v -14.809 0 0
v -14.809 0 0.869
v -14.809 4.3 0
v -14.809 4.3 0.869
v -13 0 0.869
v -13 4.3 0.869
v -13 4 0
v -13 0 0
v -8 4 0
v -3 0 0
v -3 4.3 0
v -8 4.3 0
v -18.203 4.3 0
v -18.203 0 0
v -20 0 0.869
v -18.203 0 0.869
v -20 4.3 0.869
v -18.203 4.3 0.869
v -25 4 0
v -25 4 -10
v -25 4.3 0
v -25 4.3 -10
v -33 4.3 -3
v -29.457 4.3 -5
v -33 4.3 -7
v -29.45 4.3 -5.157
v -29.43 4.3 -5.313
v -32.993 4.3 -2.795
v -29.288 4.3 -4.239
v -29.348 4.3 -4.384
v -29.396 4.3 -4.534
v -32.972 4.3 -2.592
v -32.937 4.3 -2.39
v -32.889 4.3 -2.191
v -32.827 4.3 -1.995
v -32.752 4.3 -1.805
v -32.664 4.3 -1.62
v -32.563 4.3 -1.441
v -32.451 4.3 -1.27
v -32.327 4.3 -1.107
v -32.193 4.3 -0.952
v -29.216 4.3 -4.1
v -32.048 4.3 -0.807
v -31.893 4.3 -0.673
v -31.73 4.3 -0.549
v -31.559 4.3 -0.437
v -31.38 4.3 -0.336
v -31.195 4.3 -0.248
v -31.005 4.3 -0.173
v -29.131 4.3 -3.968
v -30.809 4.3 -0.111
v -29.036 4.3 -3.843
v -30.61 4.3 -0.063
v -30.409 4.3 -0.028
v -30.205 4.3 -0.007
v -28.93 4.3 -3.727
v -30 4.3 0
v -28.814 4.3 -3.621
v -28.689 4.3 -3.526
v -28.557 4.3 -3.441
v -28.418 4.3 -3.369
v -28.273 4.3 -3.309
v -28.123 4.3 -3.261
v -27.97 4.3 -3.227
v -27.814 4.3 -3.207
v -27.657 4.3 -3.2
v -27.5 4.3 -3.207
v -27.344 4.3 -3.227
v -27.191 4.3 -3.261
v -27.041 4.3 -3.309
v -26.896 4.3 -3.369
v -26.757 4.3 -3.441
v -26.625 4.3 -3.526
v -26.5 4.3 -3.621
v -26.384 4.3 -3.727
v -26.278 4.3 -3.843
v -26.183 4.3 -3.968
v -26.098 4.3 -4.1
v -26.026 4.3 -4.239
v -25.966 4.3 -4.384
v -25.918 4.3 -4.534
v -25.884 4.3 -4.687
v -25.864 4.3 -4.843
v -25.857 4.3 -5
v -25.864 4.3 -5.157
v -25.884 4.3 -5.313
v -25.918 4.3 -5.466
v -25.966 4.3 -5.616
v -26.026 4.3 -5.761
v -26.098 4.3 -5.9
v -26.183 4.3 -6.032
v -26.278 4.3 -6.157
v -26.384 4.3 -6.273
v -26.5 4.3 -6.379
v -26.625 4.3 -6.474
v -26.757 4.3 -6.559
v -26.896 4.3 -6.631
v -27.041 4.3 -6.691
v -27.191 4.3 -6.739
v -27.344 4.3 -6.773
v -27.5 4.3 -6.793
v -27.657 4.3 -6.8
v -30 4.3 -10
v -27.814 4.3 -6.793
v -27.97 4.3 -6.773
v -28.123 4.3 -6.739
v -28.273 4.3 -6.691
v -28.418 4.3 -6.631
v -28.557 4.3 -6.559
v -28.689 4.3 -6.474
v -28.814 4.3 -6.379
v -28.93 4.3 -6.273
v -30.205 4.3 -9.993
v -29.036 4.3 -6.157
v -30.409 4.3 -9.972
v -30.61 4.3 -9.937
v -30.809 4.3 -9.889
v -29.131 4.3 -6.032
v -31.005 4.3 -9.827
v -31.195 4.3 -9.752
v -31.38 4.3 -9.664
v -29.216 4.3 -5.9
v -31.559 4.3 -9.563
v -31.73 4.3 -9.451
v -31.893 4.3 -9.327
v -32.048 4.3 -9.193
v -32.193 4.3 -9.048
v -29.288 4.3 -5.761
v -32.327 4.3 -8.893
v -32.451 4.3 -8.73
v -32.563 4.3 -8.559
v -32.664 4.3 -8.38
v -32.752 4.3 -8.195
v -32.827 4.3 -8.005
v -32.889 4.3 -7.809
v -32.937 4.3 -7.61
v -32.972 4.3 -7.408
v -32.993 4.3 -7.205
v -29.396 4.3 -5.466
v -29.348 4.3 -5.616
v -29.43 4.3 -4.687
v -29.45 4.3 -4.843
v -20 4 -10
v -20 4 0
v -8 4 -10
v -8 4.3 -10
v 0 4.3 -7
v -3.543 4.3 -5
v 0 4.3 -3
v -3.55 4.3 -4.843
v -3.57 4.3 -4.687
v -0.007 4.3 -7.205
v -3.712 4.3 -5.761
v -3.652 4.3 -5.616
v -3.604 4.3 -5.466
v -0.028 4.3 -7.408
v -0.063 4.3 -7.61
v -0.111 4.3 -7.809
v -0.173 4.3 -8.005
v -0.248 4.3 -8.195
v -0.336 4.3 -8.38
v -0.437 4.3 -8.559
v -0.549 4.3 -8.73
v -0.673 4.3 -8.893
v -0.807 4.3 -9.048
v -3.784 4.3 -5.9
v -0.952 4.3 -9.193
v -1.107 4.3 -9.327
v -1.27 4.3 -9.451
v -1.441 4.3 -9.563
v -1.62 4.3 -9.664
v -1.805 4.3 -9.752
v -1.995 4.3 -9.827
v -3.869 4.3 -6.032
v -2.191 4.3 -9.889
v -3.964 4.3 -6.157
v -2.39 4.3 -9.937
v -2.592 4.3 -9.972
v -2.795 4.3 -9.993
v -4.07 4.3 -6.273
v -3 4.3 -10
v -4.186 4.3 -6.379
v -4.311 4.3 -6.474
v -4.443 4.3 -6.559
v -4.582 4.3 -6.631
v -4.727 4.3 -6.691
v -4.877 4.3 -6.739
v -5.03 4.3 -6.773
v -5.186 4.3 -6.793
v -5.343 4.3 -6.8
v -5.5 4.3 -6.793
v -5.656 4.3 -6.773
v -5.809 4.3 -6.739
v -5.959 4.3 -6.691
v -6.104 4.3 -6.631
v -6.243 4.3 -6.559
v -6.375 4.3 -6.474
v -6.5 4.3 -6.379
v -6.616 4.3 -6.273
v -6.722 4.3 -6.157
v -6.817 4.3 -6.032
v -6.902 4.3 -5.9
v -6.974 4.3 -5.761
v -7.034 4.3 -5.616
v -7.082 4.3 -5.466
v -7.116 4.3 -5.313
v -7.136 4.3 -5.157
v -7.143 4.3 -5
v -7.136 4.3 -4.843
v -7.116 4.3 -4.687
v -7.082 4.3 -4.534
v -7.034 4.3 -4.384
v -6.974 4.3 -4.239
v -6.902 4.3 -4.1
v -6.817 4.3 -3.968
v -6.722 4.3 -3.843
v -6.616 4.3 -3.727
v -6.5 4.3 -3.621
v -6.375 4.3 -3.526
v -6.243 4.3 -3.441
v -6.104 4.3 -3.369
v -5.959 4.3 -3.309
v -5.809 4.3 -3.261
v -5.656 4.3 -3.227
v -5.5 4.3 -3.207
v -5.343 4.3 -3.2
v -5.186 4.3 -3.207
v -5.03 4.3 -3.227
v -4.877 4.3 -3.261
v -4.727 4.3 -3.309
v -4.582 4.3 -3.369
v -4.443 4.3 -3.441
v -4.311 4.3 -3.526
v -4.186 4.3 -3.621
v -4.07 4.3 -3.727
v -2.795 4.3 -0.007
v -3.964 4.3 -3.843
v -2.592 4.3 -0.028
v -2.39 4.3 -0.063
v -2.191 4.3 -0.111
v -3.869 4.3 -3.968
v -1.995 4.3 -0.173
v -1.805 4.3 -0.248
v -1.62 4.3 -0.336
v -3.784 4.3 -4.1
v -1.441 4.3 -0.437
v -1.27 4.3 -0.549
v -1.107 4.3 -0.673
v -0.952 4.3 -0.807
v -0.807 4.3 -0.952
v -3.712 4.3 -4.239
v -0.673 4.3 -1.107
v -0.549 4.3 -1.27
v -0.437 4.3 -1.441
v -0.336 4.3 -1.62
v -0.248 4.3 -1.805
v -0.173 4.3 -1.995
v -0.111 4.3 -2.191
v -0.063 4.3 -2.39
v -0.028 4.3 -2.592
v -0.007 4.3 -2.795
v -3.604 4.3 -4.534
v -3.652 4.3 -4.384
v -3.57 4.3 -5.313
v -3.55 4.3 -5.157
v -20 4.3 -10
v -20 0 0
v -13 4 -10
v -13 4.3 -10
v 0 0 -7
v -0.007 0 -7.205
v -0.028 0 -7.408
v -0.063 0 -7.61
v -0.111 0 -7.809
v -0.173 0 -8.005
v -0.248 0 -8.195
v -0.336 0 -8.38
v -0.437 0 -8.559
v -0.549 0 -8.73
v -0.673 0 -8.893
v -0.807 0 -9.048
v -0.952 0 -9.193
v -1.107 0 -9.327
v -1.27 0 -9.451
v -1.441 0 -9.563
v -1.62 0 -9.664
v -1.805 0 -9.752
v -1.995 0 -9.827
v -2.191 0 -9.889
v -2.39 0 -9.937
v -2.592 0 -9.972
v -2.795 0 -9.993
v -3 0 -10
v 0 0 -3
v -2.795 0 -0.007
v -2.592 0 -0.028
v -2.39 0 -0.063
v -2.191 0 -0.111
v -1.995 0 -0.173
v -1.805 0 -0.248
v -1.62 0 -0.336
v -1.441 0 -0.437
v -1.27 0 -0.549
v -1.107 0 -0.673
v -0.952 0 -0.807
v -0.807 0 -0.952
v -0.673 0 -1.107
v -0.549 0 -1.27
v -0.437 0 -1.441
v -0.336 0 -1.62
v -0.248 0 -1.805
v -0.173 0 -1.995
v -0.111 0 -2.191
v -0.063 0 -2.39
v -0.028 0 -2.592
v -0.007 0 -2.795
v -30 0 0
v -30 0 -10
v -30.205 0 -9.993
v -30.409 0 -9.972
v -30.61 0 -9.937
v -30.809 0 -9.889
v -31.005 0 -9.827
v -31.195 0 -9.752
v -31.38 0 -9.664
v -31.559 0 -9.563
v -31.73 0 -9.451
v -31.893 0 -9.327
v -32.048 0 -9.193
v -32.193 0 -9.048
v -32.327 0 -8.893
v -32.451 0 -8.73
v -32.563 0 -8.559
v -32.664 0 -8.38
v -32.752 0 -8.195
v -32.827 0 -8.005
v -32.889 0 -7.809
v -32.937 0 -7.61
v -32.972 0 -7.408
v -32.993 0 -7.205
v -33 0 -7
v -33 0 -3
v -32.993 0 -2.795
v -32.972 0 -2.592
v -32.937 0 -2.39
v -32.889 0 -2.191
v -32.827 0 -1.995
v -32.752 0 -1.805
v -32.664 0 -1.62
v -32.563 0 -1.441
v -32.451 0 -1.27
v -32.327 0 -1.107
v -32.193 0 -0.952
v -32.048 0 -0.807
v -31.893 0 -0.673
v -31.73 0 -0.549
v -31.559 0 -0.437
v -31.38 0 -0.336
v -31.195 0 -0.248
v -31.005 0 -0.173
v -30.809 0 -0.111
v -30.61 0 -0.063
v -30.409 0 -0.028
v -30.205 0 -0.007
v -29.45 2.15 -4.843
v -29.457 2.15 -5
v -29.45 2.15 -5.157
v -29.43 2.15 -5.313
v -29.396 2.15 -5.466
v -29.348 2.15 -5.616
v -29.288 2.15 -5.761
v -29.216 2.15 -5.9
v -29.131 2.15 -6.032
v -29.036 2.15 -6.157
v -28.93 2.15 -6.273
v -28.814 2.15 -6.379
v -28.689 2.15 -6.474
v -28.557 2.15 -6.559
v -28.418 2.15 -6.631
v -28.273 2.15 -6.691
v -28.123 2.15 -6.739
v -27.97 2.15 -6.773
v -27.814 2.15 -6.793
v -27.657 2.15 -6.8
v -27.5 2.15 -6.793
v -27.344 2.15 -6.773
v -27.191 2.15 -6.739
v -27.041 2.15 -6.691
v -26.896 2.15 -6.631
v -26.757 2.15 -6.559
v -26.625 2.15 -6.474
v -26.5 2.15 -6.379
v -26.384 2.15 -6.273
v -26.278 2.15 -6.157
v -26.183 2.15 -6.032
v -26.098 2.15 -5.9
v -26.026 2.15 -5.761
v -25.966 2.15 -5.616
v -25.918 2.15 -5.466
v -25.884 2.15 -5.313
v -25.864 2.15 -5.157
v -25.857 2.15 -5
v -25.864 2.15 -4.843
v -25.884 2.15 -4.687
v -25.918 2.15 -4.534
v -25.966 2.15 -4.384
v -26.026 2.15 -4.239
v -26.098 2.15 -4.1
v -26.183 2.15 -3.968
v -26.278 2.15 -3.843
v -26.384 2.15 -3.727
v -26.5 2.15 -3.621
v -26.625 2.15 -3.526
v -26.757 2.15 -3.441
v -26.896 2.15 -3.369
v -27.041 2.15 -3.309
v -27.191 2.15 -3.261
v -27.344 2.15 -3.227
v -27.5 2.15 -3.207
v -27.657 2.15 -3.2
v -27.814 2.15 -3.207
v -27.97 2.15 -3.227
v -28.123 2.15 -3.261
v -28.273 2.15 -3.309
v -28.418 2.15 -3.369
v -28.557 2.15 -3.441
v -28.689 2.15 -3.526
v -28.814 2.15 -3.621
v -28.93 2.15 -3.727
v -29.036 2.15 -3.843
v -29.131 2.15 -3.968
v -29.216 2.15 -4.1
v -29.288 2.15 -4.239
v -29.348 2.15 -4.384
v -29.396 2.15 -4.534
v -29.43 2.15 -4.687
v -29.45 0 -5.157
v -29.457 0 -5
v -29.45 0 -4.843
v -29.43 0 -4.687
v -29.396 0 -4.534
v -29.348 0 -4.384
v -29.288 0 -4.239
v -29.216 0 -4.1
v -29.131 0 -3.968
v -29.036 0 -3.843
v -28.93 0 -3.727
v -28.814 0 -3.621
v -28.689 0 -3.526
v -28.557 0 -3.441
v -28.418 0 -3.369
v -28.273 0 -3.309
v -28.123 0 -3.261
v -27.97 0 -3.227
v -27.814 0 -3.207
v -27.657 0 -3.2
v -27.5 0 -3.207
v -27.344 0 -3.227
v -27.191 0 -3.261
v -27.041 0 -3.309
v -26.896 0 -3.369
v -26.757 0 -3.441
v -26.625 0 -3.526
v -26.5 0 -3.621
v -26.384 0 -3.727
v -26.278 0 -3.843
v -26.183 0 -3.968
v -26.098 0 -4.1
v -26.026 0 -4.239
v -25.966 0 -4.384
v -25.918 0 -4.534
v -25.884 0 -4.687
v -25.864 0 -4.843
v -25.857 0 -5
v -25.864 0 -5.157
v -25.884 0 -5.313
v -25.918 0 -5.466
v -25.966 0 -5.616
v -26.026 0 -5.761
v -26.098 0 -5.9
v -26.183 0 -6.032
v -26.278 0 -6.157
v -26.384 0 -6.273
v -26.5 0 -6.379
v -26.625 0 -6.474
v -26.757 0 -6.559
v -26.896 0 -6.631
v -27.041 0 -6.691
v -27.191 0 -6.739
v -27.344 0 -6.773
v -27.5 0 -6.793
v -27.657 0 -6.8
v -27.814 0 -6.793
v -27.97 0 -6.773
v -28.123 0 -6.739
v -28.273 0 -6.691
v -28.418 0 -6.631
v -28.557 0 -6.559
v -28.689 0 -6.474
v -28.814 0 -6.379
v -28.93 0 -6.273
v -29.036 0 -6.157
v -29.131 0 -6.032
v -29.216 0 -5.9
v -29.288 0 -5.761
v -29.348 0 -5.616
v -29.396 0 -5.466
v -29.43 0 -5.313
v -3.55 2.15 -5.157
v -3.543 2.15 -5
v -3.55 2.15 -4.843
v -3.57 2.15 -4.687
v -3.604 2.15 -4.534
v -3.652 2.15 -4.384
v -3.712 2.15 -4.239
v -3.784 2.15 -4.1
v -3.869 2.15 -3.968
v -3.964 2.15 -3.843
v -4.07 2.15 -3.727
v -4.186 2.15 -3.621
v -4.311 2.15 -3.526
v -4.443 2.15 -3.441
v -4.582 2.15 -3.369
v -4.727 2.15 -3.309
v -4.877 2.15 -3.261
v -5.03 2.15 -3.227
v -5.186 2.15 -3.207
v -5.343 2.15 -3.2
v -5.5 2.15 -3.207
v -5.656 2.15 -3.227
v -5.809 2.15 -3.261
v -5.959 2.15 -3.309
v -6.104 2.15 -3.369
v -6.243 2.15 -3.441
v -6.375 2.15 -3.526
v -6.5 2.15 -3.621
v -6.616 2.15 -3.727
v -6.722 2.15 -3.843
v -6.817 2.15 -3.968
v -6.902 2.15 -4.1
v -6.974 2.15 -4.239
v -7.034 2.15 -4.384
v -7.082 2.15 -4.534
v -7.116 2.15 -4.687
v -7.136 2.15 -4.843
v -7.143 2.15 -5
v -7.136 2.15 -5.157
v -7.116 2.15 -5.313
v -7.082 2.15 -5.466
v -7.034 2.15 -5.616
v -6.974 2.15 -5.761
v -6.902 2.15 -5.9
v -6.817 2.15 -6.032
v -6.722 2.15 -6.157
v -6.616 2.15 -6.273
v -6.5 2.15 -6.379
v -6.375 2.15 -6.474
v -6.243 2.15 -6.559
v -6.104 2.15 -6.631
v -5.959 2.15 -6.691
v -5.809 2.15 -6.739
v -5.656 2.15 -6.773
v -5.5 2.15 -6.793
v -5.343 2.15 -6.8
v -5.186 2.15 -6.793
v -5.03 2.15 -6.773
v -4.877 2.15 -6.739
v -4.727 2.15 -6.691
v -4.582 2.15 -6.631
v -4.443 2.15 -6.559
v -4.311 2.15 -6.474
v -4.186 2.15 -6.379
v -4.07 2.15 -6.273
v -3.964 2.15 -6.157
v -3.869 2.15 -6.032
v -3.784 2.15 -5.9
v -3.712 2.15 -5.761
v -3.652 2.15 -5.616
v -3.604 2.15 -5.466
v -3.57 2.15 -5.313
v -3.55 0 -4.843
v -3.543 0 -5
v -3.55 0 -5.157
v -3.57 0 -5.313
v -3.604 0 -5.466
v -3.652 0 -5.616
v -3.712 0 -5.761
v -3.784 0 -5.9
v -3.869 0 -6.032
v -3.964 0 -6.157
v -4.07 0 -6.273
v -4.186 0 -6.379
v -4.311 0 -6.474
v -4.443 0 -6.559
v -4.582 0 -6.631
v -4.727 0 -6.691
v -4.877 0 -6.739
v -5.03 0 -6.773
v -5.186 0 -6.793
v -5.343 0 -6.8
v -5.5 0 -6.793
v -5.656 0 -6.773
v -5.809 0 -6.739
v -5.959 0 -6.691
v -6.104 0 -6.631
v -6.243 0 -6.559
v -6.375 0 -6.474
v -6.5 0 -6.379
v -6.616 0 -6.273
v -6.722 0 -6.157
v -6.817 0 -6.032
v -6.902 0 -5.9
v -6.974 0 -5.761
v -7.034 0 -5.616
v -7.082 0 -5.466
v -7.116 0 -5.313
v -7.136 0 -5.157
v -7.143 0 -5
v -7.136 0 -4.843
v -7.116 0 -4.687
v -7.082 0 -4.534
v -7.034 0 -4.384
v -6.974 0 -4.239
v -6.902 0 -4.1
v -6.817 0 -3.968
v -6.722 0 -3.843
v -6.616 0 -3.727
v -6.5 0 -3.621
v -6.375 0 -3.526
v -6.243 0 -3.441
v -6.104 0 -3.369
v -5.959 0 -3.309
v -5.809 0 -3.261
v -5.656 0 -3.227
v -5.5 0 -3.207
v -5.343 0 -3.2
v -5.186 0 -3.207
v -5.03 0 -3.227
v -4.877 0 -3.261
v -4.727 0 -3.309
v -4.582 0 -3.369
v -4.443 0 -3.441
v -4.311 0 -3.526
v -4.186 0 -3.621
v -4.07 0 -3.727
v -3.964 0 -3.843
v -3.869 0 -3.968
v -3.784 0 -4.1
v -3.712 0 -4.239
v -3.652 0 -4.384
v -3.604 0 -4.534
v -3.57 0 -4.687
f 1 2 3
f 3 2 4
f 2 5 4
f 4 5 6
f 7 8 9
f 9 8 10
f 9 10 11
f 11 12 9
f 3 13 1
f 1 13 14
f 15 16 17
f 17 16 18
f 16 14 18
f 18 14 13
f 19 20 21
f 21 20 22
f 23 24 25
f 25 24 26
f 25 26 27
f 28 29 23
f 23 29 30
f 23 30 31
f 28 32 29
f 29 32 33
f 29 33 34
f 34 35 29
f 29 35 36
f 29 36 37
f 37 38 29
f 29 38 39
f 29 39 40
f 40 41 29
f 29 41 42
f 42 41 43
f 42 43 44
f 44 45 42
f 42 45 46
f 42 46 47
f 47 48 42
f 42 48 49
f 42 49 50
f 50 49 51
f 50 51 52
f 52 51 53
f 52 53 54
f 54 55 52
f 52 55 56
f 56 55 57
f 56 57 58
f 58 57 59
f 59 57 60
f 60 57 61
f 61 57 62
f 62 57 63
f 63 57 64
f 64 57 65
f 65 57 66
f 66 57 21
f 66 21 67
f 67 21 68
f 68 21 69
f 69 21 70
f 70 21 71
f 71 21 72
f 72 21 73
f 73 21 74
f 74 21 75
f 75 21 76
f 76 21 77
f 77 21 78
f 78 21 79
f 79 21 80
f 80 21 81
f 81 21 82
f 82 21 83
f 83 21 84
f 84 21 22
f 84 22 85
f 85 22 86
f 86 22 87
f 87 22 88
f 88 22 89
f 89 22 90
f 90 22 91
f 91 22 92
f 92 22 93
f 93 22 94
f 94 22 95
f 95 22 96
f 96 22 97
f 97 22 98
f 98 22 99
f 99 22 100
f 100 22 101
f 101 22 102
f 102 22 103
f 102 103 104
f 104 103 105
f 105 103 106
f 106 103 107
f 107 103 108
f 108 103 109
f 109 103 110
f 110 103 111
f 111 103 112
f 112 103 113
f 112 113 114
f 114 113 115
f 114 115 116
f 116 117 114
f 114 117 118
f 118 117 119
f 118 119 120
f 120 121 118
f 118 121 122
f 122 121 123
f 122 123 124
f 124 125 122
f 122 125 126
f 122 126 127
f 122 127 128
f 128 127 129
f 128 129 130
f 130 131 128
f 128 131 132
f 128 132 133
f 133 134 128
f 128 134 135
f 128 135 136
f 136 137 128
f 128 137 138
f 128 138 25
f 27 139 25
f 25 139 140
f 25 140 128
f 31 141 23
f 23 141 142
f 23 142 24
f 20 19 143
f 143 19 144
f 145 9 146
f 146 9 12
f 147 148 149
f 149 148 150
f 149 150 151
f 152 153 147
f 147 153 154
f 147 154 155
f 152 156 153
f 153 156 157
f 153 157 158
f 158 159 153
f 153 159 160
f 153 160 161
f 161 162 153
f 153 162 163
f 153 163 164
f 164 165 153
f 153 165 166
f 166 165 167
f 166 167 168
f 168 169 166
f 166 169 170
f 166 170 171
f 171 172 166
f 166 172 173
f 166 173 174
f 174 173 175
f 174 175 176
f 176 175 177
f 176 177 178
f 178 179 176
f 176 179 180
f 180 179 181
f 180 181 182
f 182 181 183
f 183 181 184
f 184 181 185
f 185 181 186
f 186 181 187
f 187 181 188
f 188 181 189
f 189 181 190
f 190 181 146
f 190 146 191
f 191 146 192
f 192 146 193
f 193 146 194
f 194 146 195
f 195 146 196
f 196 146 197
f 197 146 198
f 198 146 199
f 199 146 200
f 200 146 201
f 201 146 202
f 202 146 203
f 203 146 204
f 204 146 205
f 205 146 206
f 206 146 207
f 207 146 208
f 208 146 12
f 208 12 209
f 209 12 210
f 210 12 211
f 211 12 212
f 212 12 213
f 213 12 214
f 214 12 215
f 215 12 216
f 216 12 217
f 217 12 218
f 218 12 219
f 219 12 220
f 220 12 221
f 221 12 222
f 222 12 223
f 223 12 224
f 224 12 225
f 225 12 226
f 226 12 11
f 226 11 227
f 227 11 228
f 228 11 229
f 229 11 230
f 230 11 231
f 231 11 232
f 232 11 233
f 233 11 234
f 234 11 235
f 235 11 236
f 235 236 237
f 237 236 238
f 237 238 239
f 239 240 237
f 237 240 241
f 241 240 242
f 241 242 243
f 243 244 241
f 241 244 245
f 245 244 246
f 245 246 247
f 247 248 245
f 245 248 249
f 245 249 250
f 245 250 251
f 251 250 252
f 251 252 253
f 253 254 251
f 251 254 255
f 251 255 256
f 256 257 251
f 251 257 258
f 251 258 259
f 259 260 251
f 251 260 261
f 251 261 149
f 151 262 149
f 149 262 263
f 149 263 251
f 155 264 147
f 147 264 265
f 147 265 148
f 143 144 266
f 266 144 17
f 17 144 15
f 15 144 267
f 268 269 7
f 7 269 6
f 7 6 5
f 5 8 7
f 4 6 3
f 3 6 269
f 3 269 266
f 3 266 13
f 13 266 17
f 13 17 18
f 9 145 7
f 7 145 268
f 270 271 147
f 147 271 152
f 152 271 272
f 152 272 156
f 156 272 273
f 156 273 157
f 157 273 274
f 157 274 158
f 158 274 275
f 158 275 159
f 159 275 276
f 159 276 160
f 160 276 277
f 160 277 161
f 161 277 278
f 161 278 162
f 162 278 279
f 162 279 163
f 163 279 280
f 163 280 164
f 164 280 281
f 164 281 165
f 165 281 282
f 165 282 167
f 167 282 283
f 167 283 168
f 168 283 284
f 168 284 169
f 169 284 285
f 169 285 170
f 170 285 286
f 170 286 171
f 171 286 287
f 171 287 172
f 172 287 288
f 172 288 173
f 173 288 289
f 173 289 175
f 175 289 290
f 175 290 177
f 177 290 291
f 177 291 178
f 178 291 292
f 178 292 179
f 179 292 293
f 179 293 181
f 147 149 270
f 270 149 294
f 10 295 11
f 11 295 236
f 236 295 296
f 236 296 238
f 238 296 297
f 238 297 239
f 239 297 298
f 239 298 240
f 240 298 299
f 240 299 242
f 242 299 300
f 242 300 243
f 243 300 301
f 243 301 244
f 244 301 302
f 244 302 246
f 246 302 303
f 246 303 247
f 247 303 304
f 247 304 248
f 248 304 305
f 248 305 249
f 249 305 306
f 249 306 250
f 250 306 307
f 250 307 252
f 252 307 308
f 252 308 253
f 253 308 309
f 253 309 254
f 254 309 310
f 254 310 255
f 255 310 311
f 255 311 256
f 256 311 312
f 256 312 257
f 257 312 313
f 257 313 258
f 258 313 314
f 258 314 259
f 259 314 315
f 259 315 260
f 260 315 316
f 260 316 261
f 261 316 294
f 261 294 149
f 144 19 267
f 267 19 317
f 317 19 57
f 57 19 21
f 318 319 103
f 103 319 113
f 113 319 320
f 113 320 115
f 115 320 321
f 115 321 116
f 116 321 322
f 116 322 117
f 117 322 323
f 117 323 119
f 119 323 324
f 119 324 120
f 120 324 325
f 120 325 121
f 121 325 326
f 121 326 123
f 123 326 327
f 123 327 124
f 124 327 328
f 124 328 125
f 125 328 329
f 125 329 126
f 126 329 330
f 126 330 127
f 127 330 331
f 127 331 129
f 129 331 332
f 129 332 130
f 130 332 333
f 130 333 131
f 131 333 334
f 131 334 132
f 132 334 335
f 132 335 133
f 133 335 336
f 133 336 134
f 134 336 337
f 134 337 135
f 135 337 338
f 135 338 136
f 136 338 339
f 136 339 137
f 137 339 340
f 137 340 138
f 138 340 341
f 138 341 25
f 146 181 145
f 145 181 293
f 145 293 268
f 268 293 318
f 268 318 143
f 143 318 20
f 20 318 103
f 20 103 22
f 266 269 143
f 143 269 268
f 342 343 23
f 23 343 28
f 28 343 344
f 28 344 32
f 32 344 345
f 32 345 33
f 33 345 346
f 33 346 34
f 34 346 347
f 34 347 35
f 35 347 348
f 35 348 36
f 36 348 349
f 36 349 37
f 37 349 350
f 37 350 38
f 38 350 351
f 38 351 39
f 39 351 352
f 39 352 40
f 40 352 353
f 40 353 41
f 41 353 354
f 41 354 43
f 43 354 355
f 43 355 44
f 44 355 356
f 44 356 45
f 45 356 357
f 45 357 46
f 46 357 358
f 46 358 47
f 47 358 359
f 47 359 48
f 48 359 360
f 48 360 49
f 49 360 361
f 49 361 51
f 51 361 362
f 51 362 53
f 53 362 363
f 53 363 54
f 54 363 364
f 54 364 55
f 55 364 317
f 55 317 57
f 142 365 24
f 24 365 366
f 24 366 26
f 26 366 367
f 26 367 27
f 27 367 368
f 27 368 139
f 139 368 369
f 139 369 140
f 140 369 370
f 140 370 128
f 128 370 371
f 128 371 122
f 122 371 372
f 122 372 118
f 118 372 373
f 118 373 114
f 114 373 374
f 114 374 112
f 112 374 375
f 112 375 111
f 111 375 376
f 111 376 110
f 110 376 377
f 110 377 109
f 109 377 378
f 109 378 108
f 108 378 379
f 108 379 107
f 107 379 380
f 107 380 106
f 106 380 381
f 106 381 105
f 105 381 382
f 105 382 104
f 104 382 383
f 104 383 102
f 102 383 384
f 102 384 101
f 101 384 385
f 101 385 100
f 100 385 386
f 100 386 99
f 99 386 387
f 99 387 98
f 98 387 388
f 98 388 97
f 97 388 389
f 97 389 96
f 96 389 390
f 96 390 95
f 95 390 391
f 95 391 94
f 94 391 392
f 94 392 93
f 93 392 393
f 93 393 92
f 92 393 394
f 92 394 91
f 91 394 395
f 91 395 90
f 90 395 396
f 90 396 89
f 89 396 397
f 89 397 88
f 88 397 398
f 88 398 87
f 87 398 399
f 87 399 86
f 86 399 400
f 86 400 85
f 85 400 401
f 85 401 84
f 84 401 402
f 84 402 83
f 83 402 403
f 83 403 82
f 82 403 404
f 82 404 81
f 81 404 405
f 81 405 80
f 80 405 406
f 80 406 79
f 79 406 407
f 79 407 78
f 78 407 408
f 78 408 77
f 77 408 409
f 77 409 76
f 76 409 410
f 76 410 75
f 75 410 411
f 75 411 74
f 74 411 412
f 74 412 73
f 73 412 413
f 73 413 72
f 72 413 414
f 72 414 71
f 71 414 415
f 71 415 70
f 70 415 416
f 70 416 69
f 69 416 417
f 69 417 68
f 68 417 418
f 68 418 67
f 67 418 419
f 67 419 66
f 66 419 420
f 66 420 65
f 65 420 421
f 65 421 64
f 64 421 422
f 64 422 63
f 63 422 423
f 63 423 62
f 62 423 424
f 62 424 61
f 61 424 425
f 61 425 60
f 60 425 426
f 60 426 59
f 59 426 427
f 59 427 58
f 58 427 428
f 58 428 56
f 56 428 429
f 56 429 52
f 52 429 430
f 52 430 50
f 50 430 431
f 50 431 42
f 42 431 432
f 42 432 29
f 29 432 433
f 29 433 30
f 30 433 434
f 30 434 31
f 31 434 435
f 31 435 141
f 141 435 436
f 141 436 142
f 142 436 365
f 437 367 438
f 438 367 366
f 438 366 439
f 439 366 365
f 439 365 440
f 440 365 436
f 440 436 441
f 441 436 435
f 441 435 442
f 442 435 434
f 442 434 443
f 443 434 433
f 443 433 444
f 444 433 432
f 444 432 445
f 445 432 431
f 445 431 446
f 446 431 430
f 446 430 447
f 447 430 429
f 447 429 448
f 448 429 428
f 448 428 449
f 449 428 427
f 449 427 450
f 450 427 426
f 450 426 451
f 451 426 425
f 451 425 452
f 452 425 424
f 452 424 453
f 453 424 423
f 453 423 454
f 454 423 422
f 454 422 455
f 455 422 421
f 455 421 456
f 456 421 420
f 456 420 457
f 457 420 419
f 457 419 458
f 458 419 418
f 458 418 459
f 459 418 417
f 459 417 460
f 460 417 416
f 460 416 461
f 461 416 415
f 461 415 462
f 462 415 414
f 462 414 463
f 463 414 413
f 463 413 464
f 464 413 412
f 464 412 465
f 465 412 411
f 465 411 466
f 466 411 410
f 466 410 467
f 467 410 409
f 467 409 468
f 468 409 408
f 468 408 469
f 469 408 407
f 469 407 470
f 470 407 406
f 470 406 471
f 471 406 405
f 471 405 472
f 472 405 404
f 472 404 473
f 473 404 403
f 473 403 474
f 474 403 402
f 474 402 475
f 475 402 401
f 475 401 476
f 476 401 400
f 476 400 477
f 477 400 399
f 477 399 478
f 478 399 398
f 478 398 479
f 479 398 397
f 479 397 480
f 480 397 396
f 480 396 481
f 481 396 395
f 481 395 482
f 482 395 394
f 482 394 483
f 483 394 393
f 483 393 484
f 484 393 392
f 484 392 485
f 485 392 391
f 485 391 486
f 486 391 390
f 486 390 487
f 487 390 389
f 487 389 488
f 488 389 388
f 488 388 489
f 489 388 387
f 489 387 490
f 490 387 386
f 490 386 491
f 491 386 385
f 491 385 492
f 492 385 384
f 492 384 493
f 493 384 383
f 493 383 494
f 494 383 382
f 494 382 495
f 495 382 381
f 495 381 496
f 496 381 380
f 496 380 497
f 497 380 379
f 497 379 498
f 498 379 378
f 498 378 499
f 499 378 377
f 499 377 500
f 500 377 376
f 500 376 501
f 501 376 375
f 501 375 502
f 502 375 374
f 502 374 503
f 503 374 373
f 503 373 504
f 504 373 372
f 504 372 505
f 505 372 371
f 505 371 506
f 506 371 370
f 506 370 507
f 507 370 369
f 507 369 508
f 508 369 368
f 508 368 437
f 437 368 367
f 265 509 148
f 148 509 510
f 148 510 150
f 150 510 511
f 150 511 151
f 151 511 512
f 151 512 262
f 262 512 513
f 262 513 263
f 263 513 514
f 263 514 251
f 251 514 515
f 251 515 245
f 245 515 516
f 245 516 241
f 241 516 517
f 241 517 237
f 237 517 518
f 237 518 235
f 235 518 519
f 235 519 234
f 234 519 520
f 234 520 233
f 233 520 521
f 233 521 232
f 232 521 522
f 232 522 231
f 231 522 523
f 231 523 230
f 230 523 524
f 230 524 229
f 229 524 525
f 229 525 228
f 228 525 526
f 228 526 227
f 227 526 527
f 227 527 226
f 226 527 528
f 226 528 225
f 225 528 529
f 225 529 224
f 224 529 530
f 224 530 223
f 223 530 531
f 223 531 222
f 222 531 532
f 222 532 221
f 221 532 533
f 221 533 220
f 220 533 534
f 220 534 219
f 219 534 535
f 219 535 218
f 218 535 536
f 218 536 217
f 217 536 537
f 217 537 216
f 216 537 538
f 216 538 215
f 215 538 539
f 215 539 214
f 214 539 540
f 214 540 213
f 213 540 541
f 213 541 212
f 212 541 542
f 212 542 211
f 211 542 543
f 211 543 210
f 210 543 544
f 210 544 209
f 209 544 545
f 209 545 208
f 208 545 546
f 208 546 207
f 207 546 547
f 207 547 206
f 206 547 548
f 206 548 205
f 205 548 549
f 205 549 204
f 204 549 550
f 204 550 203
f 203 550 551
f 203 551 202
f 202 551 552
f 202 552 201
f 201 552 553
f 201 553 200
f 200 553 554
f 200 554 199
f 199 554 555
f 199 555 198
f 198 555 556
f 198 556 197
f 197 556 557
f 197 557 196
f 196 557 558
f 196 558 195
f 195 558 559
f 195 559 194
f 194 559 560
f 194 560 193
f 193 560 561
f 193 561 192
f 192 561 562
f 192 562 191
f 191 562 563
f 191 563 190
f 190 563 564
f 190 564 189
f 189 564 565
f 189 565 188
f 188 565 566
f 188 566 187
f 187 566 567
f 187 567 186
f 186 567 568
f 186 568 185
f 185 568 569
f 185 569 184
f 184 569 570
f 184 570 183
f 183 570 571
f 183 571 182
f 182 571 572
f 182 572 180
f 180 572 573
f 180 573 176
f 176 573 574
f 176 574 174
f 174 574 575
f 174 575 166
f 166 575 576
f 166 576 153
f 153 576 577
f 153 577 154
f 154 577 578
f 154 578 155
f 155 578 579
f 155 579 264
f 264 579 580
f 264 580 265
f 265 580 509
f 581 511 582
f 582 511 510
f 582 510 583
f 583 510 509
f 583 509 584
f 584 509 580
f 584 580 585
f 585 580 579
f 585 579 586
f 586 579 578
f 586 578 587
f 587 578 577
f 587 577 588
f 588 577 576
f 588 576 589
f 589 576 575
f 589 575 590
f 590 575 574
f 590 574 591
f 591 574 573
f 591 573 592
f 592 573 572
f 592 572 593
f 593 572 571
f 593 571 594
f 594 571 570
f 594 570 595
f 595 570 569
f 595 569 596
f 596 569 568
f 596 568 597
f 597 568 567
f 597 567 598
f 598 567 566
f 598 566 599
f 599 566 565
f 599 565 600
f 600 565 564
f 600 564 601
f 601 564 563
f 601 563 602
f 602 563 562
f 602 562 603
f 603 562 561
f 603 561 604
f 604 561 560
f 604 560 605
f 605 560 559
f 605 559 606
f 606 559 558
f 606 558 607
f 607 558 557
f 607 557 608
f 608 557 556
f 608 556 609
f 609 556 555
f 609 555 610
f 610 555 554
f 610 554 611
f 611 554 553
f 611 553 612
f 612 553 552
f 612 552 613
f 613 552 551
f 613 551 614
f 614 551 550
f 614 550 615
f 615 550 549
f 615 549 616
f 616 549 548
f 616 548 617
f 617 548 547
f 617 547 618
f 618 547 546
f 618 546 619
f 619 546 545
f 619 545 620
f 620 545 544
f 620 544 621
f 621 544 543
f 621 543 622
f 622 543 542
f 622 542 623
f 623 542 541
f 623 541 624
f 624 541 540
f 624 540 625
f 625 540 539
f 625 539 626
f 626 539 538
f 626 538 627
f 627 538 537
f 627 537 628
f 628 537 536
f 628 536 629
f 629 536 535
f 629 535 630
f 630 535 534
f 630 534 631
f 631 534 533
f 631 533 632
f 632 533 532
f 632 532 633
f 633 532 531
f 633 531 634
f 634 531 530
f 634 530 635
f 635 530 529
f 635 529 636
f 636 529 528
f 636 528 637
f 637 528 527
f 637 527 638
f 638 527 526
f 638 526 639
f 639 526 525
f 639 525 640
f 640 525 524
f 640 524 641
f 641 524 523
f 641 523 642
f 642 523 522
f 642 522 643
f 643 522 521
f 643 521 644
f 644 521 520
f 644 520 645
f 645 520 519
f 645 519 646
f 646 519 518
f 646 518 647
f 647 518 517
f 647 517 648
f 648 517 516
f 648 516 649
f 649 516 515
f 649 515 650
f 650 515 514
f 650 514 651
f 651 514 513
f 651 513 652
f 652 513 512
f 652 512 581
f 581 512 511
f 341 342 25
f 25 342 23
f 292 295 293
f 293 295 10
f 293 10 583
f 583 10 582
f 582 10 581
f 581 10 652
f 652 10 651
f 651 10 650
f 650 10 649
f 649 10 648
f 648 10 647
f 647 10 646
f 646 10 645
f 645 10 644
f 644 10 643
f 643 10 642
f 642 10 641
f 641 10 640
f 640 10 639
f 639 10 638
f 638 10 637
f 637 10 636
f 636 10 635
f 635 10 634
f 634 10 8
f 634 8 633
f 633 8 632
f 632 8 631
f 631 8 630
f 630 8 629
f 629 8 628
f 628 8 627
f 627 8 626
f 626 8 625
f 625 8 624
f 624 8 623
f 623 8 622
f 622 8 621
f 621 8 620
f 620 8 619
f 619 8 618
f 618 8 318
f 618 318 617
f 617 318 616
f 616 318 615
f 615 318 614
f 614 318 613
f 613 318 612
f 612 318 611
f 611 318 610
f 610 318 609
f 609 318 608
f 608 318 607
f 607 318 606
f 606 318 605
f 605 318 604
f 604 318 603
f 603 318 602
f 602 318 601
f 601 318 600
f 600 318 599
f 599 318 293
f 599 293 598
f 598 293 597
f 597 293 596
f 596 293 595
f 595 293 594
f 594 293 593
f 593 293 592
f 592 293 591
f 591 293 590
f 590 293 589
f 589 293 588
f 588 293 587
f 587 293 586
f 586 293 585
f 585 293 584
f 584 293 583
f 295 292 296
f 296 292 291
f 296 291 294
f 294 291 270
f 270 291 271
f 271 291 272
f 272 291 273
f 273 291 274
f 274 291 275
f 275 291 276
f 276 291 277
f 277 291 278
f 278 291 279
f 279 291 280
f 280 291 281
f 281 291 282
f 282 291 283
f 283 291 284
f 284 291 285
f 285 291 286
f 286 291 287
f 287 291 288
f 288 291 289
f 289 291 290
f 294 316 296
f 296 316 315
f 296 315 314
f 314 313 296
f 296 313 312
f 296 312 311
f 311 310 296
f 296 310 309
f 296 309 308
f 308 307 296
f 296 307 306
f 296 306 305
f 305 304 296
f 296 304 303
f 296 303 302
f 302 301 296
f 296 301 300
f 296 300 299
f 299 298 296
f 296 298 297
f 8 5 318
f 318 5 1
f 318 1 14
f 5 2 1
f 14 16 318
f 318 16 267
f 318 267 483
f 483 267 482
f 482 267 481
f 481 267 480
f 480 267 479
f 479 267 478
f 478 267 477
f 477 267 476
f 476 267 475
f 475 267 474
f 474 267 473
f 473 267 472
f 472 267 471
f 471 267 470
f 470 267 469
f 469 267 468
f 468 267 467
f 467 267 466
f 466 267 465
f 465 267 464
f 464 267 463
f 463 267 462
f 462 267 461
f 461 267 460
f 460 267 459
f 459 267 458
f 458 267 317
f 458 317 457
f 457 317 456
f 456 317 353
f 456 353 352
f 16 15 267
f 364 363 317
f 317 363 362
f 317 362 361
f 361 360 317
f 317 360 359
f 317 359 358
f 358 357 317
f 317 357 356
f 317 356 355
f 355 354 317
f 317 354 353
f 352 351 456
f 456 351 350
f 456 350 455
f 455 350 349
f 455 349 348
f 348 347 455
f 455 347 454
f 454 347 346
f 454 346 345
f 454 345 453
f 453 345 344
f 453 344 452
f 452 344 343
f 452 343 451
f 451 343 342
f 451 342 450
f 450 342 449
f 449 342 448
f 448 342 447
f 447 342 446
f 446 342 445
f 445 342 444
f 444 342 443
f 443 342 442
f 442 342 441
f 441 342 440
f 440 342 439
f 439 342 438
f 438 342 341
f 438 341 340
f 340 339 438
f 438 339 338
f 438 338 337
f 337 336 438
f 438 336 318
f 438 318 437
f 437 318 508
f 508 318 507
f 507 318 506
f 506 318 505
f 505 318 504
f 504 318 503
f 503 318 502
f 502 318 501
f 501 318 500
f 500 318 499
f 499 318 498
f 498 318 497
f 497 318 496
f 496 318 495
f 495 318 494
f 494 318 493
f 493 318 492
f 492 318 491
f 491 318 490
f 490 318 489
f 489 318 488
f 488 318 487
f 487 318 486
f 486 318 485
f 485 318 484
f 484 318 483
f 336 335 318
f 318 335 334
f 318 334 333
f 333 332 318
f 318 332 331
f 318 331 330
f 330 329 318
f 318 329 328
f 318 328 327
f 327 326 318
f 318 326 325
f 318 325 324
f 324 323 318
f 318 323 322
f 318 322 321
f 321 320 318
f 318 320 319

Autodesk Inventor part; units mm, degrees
ref_plane "YZ Plane" through (0, 0, 0) normal (1, 0, 0) x (0, 1, 0)
ref_plane "XZ Plane" through (0, 0, 0) normal (0, 1, 0) x (-1, 0, 0)
sketch "Sketch1" plane through (0, 0, 0) normal (0, 1, 0) x (-1, 0, 0)
  line L0 (0, 0) -> (33, 0)
  line L1 (33, 0) -> (33, -10)
  line L2 (33, -10) -> (0, -10)
  line L3 (0, -10) -> (0, 0)
  dimension "d0" = 33
  dimension "d1" = 10
extrude "Extrusion1" add sketch "Sketch1" along normal blind 4
sketch "Sketch2" plane through (0, 4, 0) normal (0, 1, 0) x (1, 0, 0)
  circle A0 centre (-5.343, 5) radius 1.8
  point P0 (0, 0)
  dimension "d9" = 3.6
extrude "Extrusion2" cut sketch "Sketch2" against normal blind 4
ref_plane "Work Plane1" through (-16.5, 0, 0) normal (1, 0, 0) x (0, 0, -1)
mirror "Mirror1" about plane through (-16.5, 0, 0) normal (1, 0, 0) of "Extrusion2"
fillet "Fillet1" radius 3 4 edges at (-33, 2, 0) (-33, 2, -10) (0, 2, 0) (0, 2, -10)
sketch "Sketch3" plane through (0, 4, 0) normal (0, 1, 0) x (1, 0, 0)
  line L0 (-30, 0) -> (-3, 0) projected
  line L1 (-30, 10) -> (-3, 10) projected
  line L2 (-20, 0) -> (-13, 0)
  line L3 (-13, 0) -> (-13, 10)
  line L4 (-13, 10) -> (-20, 10)
  line L5 (-20, 10) -> (-20, 0)
  point P0 (0, 0)
  dimension "d10" = 7
  dimension "d11" = 10
extrude "Extrusion3" add sketch "Sketch3" along normal blind 0.3
sketch "Sketch4" plane through (0, 4, 0) normal (0, 1, 0) x (1, 0, 0)
  line L0 (-3, 0) -> (-8, 0)
  line L1 (-8, 0) -> (-8, 10)
  line L2 (-8, 10) -> (-3, 10)
  line L3 (0, 7) -> (0, 3)
  arc A0 (-3, 0) -> (0, 3) centre (-3, 3) ccw
  arc A1 (0, 7) -> (-3, 10) centre (-3, 7) ccw
  circle A2 centre (-5.343, 5) radius 1.8 projected
  circle A3 centre (-5.343, 5) radius 1.8
  point P0 (0, 0)
  point P1 (0, 10)
  dimension "d14" = 8
  dimension "d15" = 10
  dimension "d16" = 3
extrude "Extrusion4" add sketch "Sketch4" along normal blind 0.3
mirror "Mirror2" about plane through (-16.5, 0, 0) normal (1, 0, 0) of "Extrusion4"
sketch "Sketch6" plane through (0, 4.3, 0) normal (0, 1, 0) x (1, 0, 0)
  line L0 (-20, 0) -> (-13, 0) projected
  line L1 (-20, 0) -> (-18.2027, 0)
  line L2 (-18.2027, 0) -> (-18.2027, -0.8691)
  line L3 (-18.2027, -0.8691) -> (-20, -0.8691)
  line L4 (-20, -0.8691) -> (-20, 0)
  point P0 (0, 0)
extrude "Extrusion6" add sketch "Sketch6" against normal up to surface (4.3 mm away)
sketch "Sketch7" plane through (0, 4.3, 0) normal (0, 1, 0) x (1, 0, 0)
  line L0 (-13, 0) -> (-13, 10) projected
  line L1 (-13, 0) -> (-14.8092, 0)
  line L2 (-14.8092, 0) -> (-14.8092, -0.8691)
  line L3 (-14.8092, -0.8691) -> (-13, -0.8691)
  line L4 (-13, -0.8691) -> (-13, 0)
  point P0 (0, 0)
extrude "Extrusion7" add sketch "Sketch7" against normal up to surface (4.3 mm away)
properties part number "8 peristaltic pump clamp 0.3mm"
